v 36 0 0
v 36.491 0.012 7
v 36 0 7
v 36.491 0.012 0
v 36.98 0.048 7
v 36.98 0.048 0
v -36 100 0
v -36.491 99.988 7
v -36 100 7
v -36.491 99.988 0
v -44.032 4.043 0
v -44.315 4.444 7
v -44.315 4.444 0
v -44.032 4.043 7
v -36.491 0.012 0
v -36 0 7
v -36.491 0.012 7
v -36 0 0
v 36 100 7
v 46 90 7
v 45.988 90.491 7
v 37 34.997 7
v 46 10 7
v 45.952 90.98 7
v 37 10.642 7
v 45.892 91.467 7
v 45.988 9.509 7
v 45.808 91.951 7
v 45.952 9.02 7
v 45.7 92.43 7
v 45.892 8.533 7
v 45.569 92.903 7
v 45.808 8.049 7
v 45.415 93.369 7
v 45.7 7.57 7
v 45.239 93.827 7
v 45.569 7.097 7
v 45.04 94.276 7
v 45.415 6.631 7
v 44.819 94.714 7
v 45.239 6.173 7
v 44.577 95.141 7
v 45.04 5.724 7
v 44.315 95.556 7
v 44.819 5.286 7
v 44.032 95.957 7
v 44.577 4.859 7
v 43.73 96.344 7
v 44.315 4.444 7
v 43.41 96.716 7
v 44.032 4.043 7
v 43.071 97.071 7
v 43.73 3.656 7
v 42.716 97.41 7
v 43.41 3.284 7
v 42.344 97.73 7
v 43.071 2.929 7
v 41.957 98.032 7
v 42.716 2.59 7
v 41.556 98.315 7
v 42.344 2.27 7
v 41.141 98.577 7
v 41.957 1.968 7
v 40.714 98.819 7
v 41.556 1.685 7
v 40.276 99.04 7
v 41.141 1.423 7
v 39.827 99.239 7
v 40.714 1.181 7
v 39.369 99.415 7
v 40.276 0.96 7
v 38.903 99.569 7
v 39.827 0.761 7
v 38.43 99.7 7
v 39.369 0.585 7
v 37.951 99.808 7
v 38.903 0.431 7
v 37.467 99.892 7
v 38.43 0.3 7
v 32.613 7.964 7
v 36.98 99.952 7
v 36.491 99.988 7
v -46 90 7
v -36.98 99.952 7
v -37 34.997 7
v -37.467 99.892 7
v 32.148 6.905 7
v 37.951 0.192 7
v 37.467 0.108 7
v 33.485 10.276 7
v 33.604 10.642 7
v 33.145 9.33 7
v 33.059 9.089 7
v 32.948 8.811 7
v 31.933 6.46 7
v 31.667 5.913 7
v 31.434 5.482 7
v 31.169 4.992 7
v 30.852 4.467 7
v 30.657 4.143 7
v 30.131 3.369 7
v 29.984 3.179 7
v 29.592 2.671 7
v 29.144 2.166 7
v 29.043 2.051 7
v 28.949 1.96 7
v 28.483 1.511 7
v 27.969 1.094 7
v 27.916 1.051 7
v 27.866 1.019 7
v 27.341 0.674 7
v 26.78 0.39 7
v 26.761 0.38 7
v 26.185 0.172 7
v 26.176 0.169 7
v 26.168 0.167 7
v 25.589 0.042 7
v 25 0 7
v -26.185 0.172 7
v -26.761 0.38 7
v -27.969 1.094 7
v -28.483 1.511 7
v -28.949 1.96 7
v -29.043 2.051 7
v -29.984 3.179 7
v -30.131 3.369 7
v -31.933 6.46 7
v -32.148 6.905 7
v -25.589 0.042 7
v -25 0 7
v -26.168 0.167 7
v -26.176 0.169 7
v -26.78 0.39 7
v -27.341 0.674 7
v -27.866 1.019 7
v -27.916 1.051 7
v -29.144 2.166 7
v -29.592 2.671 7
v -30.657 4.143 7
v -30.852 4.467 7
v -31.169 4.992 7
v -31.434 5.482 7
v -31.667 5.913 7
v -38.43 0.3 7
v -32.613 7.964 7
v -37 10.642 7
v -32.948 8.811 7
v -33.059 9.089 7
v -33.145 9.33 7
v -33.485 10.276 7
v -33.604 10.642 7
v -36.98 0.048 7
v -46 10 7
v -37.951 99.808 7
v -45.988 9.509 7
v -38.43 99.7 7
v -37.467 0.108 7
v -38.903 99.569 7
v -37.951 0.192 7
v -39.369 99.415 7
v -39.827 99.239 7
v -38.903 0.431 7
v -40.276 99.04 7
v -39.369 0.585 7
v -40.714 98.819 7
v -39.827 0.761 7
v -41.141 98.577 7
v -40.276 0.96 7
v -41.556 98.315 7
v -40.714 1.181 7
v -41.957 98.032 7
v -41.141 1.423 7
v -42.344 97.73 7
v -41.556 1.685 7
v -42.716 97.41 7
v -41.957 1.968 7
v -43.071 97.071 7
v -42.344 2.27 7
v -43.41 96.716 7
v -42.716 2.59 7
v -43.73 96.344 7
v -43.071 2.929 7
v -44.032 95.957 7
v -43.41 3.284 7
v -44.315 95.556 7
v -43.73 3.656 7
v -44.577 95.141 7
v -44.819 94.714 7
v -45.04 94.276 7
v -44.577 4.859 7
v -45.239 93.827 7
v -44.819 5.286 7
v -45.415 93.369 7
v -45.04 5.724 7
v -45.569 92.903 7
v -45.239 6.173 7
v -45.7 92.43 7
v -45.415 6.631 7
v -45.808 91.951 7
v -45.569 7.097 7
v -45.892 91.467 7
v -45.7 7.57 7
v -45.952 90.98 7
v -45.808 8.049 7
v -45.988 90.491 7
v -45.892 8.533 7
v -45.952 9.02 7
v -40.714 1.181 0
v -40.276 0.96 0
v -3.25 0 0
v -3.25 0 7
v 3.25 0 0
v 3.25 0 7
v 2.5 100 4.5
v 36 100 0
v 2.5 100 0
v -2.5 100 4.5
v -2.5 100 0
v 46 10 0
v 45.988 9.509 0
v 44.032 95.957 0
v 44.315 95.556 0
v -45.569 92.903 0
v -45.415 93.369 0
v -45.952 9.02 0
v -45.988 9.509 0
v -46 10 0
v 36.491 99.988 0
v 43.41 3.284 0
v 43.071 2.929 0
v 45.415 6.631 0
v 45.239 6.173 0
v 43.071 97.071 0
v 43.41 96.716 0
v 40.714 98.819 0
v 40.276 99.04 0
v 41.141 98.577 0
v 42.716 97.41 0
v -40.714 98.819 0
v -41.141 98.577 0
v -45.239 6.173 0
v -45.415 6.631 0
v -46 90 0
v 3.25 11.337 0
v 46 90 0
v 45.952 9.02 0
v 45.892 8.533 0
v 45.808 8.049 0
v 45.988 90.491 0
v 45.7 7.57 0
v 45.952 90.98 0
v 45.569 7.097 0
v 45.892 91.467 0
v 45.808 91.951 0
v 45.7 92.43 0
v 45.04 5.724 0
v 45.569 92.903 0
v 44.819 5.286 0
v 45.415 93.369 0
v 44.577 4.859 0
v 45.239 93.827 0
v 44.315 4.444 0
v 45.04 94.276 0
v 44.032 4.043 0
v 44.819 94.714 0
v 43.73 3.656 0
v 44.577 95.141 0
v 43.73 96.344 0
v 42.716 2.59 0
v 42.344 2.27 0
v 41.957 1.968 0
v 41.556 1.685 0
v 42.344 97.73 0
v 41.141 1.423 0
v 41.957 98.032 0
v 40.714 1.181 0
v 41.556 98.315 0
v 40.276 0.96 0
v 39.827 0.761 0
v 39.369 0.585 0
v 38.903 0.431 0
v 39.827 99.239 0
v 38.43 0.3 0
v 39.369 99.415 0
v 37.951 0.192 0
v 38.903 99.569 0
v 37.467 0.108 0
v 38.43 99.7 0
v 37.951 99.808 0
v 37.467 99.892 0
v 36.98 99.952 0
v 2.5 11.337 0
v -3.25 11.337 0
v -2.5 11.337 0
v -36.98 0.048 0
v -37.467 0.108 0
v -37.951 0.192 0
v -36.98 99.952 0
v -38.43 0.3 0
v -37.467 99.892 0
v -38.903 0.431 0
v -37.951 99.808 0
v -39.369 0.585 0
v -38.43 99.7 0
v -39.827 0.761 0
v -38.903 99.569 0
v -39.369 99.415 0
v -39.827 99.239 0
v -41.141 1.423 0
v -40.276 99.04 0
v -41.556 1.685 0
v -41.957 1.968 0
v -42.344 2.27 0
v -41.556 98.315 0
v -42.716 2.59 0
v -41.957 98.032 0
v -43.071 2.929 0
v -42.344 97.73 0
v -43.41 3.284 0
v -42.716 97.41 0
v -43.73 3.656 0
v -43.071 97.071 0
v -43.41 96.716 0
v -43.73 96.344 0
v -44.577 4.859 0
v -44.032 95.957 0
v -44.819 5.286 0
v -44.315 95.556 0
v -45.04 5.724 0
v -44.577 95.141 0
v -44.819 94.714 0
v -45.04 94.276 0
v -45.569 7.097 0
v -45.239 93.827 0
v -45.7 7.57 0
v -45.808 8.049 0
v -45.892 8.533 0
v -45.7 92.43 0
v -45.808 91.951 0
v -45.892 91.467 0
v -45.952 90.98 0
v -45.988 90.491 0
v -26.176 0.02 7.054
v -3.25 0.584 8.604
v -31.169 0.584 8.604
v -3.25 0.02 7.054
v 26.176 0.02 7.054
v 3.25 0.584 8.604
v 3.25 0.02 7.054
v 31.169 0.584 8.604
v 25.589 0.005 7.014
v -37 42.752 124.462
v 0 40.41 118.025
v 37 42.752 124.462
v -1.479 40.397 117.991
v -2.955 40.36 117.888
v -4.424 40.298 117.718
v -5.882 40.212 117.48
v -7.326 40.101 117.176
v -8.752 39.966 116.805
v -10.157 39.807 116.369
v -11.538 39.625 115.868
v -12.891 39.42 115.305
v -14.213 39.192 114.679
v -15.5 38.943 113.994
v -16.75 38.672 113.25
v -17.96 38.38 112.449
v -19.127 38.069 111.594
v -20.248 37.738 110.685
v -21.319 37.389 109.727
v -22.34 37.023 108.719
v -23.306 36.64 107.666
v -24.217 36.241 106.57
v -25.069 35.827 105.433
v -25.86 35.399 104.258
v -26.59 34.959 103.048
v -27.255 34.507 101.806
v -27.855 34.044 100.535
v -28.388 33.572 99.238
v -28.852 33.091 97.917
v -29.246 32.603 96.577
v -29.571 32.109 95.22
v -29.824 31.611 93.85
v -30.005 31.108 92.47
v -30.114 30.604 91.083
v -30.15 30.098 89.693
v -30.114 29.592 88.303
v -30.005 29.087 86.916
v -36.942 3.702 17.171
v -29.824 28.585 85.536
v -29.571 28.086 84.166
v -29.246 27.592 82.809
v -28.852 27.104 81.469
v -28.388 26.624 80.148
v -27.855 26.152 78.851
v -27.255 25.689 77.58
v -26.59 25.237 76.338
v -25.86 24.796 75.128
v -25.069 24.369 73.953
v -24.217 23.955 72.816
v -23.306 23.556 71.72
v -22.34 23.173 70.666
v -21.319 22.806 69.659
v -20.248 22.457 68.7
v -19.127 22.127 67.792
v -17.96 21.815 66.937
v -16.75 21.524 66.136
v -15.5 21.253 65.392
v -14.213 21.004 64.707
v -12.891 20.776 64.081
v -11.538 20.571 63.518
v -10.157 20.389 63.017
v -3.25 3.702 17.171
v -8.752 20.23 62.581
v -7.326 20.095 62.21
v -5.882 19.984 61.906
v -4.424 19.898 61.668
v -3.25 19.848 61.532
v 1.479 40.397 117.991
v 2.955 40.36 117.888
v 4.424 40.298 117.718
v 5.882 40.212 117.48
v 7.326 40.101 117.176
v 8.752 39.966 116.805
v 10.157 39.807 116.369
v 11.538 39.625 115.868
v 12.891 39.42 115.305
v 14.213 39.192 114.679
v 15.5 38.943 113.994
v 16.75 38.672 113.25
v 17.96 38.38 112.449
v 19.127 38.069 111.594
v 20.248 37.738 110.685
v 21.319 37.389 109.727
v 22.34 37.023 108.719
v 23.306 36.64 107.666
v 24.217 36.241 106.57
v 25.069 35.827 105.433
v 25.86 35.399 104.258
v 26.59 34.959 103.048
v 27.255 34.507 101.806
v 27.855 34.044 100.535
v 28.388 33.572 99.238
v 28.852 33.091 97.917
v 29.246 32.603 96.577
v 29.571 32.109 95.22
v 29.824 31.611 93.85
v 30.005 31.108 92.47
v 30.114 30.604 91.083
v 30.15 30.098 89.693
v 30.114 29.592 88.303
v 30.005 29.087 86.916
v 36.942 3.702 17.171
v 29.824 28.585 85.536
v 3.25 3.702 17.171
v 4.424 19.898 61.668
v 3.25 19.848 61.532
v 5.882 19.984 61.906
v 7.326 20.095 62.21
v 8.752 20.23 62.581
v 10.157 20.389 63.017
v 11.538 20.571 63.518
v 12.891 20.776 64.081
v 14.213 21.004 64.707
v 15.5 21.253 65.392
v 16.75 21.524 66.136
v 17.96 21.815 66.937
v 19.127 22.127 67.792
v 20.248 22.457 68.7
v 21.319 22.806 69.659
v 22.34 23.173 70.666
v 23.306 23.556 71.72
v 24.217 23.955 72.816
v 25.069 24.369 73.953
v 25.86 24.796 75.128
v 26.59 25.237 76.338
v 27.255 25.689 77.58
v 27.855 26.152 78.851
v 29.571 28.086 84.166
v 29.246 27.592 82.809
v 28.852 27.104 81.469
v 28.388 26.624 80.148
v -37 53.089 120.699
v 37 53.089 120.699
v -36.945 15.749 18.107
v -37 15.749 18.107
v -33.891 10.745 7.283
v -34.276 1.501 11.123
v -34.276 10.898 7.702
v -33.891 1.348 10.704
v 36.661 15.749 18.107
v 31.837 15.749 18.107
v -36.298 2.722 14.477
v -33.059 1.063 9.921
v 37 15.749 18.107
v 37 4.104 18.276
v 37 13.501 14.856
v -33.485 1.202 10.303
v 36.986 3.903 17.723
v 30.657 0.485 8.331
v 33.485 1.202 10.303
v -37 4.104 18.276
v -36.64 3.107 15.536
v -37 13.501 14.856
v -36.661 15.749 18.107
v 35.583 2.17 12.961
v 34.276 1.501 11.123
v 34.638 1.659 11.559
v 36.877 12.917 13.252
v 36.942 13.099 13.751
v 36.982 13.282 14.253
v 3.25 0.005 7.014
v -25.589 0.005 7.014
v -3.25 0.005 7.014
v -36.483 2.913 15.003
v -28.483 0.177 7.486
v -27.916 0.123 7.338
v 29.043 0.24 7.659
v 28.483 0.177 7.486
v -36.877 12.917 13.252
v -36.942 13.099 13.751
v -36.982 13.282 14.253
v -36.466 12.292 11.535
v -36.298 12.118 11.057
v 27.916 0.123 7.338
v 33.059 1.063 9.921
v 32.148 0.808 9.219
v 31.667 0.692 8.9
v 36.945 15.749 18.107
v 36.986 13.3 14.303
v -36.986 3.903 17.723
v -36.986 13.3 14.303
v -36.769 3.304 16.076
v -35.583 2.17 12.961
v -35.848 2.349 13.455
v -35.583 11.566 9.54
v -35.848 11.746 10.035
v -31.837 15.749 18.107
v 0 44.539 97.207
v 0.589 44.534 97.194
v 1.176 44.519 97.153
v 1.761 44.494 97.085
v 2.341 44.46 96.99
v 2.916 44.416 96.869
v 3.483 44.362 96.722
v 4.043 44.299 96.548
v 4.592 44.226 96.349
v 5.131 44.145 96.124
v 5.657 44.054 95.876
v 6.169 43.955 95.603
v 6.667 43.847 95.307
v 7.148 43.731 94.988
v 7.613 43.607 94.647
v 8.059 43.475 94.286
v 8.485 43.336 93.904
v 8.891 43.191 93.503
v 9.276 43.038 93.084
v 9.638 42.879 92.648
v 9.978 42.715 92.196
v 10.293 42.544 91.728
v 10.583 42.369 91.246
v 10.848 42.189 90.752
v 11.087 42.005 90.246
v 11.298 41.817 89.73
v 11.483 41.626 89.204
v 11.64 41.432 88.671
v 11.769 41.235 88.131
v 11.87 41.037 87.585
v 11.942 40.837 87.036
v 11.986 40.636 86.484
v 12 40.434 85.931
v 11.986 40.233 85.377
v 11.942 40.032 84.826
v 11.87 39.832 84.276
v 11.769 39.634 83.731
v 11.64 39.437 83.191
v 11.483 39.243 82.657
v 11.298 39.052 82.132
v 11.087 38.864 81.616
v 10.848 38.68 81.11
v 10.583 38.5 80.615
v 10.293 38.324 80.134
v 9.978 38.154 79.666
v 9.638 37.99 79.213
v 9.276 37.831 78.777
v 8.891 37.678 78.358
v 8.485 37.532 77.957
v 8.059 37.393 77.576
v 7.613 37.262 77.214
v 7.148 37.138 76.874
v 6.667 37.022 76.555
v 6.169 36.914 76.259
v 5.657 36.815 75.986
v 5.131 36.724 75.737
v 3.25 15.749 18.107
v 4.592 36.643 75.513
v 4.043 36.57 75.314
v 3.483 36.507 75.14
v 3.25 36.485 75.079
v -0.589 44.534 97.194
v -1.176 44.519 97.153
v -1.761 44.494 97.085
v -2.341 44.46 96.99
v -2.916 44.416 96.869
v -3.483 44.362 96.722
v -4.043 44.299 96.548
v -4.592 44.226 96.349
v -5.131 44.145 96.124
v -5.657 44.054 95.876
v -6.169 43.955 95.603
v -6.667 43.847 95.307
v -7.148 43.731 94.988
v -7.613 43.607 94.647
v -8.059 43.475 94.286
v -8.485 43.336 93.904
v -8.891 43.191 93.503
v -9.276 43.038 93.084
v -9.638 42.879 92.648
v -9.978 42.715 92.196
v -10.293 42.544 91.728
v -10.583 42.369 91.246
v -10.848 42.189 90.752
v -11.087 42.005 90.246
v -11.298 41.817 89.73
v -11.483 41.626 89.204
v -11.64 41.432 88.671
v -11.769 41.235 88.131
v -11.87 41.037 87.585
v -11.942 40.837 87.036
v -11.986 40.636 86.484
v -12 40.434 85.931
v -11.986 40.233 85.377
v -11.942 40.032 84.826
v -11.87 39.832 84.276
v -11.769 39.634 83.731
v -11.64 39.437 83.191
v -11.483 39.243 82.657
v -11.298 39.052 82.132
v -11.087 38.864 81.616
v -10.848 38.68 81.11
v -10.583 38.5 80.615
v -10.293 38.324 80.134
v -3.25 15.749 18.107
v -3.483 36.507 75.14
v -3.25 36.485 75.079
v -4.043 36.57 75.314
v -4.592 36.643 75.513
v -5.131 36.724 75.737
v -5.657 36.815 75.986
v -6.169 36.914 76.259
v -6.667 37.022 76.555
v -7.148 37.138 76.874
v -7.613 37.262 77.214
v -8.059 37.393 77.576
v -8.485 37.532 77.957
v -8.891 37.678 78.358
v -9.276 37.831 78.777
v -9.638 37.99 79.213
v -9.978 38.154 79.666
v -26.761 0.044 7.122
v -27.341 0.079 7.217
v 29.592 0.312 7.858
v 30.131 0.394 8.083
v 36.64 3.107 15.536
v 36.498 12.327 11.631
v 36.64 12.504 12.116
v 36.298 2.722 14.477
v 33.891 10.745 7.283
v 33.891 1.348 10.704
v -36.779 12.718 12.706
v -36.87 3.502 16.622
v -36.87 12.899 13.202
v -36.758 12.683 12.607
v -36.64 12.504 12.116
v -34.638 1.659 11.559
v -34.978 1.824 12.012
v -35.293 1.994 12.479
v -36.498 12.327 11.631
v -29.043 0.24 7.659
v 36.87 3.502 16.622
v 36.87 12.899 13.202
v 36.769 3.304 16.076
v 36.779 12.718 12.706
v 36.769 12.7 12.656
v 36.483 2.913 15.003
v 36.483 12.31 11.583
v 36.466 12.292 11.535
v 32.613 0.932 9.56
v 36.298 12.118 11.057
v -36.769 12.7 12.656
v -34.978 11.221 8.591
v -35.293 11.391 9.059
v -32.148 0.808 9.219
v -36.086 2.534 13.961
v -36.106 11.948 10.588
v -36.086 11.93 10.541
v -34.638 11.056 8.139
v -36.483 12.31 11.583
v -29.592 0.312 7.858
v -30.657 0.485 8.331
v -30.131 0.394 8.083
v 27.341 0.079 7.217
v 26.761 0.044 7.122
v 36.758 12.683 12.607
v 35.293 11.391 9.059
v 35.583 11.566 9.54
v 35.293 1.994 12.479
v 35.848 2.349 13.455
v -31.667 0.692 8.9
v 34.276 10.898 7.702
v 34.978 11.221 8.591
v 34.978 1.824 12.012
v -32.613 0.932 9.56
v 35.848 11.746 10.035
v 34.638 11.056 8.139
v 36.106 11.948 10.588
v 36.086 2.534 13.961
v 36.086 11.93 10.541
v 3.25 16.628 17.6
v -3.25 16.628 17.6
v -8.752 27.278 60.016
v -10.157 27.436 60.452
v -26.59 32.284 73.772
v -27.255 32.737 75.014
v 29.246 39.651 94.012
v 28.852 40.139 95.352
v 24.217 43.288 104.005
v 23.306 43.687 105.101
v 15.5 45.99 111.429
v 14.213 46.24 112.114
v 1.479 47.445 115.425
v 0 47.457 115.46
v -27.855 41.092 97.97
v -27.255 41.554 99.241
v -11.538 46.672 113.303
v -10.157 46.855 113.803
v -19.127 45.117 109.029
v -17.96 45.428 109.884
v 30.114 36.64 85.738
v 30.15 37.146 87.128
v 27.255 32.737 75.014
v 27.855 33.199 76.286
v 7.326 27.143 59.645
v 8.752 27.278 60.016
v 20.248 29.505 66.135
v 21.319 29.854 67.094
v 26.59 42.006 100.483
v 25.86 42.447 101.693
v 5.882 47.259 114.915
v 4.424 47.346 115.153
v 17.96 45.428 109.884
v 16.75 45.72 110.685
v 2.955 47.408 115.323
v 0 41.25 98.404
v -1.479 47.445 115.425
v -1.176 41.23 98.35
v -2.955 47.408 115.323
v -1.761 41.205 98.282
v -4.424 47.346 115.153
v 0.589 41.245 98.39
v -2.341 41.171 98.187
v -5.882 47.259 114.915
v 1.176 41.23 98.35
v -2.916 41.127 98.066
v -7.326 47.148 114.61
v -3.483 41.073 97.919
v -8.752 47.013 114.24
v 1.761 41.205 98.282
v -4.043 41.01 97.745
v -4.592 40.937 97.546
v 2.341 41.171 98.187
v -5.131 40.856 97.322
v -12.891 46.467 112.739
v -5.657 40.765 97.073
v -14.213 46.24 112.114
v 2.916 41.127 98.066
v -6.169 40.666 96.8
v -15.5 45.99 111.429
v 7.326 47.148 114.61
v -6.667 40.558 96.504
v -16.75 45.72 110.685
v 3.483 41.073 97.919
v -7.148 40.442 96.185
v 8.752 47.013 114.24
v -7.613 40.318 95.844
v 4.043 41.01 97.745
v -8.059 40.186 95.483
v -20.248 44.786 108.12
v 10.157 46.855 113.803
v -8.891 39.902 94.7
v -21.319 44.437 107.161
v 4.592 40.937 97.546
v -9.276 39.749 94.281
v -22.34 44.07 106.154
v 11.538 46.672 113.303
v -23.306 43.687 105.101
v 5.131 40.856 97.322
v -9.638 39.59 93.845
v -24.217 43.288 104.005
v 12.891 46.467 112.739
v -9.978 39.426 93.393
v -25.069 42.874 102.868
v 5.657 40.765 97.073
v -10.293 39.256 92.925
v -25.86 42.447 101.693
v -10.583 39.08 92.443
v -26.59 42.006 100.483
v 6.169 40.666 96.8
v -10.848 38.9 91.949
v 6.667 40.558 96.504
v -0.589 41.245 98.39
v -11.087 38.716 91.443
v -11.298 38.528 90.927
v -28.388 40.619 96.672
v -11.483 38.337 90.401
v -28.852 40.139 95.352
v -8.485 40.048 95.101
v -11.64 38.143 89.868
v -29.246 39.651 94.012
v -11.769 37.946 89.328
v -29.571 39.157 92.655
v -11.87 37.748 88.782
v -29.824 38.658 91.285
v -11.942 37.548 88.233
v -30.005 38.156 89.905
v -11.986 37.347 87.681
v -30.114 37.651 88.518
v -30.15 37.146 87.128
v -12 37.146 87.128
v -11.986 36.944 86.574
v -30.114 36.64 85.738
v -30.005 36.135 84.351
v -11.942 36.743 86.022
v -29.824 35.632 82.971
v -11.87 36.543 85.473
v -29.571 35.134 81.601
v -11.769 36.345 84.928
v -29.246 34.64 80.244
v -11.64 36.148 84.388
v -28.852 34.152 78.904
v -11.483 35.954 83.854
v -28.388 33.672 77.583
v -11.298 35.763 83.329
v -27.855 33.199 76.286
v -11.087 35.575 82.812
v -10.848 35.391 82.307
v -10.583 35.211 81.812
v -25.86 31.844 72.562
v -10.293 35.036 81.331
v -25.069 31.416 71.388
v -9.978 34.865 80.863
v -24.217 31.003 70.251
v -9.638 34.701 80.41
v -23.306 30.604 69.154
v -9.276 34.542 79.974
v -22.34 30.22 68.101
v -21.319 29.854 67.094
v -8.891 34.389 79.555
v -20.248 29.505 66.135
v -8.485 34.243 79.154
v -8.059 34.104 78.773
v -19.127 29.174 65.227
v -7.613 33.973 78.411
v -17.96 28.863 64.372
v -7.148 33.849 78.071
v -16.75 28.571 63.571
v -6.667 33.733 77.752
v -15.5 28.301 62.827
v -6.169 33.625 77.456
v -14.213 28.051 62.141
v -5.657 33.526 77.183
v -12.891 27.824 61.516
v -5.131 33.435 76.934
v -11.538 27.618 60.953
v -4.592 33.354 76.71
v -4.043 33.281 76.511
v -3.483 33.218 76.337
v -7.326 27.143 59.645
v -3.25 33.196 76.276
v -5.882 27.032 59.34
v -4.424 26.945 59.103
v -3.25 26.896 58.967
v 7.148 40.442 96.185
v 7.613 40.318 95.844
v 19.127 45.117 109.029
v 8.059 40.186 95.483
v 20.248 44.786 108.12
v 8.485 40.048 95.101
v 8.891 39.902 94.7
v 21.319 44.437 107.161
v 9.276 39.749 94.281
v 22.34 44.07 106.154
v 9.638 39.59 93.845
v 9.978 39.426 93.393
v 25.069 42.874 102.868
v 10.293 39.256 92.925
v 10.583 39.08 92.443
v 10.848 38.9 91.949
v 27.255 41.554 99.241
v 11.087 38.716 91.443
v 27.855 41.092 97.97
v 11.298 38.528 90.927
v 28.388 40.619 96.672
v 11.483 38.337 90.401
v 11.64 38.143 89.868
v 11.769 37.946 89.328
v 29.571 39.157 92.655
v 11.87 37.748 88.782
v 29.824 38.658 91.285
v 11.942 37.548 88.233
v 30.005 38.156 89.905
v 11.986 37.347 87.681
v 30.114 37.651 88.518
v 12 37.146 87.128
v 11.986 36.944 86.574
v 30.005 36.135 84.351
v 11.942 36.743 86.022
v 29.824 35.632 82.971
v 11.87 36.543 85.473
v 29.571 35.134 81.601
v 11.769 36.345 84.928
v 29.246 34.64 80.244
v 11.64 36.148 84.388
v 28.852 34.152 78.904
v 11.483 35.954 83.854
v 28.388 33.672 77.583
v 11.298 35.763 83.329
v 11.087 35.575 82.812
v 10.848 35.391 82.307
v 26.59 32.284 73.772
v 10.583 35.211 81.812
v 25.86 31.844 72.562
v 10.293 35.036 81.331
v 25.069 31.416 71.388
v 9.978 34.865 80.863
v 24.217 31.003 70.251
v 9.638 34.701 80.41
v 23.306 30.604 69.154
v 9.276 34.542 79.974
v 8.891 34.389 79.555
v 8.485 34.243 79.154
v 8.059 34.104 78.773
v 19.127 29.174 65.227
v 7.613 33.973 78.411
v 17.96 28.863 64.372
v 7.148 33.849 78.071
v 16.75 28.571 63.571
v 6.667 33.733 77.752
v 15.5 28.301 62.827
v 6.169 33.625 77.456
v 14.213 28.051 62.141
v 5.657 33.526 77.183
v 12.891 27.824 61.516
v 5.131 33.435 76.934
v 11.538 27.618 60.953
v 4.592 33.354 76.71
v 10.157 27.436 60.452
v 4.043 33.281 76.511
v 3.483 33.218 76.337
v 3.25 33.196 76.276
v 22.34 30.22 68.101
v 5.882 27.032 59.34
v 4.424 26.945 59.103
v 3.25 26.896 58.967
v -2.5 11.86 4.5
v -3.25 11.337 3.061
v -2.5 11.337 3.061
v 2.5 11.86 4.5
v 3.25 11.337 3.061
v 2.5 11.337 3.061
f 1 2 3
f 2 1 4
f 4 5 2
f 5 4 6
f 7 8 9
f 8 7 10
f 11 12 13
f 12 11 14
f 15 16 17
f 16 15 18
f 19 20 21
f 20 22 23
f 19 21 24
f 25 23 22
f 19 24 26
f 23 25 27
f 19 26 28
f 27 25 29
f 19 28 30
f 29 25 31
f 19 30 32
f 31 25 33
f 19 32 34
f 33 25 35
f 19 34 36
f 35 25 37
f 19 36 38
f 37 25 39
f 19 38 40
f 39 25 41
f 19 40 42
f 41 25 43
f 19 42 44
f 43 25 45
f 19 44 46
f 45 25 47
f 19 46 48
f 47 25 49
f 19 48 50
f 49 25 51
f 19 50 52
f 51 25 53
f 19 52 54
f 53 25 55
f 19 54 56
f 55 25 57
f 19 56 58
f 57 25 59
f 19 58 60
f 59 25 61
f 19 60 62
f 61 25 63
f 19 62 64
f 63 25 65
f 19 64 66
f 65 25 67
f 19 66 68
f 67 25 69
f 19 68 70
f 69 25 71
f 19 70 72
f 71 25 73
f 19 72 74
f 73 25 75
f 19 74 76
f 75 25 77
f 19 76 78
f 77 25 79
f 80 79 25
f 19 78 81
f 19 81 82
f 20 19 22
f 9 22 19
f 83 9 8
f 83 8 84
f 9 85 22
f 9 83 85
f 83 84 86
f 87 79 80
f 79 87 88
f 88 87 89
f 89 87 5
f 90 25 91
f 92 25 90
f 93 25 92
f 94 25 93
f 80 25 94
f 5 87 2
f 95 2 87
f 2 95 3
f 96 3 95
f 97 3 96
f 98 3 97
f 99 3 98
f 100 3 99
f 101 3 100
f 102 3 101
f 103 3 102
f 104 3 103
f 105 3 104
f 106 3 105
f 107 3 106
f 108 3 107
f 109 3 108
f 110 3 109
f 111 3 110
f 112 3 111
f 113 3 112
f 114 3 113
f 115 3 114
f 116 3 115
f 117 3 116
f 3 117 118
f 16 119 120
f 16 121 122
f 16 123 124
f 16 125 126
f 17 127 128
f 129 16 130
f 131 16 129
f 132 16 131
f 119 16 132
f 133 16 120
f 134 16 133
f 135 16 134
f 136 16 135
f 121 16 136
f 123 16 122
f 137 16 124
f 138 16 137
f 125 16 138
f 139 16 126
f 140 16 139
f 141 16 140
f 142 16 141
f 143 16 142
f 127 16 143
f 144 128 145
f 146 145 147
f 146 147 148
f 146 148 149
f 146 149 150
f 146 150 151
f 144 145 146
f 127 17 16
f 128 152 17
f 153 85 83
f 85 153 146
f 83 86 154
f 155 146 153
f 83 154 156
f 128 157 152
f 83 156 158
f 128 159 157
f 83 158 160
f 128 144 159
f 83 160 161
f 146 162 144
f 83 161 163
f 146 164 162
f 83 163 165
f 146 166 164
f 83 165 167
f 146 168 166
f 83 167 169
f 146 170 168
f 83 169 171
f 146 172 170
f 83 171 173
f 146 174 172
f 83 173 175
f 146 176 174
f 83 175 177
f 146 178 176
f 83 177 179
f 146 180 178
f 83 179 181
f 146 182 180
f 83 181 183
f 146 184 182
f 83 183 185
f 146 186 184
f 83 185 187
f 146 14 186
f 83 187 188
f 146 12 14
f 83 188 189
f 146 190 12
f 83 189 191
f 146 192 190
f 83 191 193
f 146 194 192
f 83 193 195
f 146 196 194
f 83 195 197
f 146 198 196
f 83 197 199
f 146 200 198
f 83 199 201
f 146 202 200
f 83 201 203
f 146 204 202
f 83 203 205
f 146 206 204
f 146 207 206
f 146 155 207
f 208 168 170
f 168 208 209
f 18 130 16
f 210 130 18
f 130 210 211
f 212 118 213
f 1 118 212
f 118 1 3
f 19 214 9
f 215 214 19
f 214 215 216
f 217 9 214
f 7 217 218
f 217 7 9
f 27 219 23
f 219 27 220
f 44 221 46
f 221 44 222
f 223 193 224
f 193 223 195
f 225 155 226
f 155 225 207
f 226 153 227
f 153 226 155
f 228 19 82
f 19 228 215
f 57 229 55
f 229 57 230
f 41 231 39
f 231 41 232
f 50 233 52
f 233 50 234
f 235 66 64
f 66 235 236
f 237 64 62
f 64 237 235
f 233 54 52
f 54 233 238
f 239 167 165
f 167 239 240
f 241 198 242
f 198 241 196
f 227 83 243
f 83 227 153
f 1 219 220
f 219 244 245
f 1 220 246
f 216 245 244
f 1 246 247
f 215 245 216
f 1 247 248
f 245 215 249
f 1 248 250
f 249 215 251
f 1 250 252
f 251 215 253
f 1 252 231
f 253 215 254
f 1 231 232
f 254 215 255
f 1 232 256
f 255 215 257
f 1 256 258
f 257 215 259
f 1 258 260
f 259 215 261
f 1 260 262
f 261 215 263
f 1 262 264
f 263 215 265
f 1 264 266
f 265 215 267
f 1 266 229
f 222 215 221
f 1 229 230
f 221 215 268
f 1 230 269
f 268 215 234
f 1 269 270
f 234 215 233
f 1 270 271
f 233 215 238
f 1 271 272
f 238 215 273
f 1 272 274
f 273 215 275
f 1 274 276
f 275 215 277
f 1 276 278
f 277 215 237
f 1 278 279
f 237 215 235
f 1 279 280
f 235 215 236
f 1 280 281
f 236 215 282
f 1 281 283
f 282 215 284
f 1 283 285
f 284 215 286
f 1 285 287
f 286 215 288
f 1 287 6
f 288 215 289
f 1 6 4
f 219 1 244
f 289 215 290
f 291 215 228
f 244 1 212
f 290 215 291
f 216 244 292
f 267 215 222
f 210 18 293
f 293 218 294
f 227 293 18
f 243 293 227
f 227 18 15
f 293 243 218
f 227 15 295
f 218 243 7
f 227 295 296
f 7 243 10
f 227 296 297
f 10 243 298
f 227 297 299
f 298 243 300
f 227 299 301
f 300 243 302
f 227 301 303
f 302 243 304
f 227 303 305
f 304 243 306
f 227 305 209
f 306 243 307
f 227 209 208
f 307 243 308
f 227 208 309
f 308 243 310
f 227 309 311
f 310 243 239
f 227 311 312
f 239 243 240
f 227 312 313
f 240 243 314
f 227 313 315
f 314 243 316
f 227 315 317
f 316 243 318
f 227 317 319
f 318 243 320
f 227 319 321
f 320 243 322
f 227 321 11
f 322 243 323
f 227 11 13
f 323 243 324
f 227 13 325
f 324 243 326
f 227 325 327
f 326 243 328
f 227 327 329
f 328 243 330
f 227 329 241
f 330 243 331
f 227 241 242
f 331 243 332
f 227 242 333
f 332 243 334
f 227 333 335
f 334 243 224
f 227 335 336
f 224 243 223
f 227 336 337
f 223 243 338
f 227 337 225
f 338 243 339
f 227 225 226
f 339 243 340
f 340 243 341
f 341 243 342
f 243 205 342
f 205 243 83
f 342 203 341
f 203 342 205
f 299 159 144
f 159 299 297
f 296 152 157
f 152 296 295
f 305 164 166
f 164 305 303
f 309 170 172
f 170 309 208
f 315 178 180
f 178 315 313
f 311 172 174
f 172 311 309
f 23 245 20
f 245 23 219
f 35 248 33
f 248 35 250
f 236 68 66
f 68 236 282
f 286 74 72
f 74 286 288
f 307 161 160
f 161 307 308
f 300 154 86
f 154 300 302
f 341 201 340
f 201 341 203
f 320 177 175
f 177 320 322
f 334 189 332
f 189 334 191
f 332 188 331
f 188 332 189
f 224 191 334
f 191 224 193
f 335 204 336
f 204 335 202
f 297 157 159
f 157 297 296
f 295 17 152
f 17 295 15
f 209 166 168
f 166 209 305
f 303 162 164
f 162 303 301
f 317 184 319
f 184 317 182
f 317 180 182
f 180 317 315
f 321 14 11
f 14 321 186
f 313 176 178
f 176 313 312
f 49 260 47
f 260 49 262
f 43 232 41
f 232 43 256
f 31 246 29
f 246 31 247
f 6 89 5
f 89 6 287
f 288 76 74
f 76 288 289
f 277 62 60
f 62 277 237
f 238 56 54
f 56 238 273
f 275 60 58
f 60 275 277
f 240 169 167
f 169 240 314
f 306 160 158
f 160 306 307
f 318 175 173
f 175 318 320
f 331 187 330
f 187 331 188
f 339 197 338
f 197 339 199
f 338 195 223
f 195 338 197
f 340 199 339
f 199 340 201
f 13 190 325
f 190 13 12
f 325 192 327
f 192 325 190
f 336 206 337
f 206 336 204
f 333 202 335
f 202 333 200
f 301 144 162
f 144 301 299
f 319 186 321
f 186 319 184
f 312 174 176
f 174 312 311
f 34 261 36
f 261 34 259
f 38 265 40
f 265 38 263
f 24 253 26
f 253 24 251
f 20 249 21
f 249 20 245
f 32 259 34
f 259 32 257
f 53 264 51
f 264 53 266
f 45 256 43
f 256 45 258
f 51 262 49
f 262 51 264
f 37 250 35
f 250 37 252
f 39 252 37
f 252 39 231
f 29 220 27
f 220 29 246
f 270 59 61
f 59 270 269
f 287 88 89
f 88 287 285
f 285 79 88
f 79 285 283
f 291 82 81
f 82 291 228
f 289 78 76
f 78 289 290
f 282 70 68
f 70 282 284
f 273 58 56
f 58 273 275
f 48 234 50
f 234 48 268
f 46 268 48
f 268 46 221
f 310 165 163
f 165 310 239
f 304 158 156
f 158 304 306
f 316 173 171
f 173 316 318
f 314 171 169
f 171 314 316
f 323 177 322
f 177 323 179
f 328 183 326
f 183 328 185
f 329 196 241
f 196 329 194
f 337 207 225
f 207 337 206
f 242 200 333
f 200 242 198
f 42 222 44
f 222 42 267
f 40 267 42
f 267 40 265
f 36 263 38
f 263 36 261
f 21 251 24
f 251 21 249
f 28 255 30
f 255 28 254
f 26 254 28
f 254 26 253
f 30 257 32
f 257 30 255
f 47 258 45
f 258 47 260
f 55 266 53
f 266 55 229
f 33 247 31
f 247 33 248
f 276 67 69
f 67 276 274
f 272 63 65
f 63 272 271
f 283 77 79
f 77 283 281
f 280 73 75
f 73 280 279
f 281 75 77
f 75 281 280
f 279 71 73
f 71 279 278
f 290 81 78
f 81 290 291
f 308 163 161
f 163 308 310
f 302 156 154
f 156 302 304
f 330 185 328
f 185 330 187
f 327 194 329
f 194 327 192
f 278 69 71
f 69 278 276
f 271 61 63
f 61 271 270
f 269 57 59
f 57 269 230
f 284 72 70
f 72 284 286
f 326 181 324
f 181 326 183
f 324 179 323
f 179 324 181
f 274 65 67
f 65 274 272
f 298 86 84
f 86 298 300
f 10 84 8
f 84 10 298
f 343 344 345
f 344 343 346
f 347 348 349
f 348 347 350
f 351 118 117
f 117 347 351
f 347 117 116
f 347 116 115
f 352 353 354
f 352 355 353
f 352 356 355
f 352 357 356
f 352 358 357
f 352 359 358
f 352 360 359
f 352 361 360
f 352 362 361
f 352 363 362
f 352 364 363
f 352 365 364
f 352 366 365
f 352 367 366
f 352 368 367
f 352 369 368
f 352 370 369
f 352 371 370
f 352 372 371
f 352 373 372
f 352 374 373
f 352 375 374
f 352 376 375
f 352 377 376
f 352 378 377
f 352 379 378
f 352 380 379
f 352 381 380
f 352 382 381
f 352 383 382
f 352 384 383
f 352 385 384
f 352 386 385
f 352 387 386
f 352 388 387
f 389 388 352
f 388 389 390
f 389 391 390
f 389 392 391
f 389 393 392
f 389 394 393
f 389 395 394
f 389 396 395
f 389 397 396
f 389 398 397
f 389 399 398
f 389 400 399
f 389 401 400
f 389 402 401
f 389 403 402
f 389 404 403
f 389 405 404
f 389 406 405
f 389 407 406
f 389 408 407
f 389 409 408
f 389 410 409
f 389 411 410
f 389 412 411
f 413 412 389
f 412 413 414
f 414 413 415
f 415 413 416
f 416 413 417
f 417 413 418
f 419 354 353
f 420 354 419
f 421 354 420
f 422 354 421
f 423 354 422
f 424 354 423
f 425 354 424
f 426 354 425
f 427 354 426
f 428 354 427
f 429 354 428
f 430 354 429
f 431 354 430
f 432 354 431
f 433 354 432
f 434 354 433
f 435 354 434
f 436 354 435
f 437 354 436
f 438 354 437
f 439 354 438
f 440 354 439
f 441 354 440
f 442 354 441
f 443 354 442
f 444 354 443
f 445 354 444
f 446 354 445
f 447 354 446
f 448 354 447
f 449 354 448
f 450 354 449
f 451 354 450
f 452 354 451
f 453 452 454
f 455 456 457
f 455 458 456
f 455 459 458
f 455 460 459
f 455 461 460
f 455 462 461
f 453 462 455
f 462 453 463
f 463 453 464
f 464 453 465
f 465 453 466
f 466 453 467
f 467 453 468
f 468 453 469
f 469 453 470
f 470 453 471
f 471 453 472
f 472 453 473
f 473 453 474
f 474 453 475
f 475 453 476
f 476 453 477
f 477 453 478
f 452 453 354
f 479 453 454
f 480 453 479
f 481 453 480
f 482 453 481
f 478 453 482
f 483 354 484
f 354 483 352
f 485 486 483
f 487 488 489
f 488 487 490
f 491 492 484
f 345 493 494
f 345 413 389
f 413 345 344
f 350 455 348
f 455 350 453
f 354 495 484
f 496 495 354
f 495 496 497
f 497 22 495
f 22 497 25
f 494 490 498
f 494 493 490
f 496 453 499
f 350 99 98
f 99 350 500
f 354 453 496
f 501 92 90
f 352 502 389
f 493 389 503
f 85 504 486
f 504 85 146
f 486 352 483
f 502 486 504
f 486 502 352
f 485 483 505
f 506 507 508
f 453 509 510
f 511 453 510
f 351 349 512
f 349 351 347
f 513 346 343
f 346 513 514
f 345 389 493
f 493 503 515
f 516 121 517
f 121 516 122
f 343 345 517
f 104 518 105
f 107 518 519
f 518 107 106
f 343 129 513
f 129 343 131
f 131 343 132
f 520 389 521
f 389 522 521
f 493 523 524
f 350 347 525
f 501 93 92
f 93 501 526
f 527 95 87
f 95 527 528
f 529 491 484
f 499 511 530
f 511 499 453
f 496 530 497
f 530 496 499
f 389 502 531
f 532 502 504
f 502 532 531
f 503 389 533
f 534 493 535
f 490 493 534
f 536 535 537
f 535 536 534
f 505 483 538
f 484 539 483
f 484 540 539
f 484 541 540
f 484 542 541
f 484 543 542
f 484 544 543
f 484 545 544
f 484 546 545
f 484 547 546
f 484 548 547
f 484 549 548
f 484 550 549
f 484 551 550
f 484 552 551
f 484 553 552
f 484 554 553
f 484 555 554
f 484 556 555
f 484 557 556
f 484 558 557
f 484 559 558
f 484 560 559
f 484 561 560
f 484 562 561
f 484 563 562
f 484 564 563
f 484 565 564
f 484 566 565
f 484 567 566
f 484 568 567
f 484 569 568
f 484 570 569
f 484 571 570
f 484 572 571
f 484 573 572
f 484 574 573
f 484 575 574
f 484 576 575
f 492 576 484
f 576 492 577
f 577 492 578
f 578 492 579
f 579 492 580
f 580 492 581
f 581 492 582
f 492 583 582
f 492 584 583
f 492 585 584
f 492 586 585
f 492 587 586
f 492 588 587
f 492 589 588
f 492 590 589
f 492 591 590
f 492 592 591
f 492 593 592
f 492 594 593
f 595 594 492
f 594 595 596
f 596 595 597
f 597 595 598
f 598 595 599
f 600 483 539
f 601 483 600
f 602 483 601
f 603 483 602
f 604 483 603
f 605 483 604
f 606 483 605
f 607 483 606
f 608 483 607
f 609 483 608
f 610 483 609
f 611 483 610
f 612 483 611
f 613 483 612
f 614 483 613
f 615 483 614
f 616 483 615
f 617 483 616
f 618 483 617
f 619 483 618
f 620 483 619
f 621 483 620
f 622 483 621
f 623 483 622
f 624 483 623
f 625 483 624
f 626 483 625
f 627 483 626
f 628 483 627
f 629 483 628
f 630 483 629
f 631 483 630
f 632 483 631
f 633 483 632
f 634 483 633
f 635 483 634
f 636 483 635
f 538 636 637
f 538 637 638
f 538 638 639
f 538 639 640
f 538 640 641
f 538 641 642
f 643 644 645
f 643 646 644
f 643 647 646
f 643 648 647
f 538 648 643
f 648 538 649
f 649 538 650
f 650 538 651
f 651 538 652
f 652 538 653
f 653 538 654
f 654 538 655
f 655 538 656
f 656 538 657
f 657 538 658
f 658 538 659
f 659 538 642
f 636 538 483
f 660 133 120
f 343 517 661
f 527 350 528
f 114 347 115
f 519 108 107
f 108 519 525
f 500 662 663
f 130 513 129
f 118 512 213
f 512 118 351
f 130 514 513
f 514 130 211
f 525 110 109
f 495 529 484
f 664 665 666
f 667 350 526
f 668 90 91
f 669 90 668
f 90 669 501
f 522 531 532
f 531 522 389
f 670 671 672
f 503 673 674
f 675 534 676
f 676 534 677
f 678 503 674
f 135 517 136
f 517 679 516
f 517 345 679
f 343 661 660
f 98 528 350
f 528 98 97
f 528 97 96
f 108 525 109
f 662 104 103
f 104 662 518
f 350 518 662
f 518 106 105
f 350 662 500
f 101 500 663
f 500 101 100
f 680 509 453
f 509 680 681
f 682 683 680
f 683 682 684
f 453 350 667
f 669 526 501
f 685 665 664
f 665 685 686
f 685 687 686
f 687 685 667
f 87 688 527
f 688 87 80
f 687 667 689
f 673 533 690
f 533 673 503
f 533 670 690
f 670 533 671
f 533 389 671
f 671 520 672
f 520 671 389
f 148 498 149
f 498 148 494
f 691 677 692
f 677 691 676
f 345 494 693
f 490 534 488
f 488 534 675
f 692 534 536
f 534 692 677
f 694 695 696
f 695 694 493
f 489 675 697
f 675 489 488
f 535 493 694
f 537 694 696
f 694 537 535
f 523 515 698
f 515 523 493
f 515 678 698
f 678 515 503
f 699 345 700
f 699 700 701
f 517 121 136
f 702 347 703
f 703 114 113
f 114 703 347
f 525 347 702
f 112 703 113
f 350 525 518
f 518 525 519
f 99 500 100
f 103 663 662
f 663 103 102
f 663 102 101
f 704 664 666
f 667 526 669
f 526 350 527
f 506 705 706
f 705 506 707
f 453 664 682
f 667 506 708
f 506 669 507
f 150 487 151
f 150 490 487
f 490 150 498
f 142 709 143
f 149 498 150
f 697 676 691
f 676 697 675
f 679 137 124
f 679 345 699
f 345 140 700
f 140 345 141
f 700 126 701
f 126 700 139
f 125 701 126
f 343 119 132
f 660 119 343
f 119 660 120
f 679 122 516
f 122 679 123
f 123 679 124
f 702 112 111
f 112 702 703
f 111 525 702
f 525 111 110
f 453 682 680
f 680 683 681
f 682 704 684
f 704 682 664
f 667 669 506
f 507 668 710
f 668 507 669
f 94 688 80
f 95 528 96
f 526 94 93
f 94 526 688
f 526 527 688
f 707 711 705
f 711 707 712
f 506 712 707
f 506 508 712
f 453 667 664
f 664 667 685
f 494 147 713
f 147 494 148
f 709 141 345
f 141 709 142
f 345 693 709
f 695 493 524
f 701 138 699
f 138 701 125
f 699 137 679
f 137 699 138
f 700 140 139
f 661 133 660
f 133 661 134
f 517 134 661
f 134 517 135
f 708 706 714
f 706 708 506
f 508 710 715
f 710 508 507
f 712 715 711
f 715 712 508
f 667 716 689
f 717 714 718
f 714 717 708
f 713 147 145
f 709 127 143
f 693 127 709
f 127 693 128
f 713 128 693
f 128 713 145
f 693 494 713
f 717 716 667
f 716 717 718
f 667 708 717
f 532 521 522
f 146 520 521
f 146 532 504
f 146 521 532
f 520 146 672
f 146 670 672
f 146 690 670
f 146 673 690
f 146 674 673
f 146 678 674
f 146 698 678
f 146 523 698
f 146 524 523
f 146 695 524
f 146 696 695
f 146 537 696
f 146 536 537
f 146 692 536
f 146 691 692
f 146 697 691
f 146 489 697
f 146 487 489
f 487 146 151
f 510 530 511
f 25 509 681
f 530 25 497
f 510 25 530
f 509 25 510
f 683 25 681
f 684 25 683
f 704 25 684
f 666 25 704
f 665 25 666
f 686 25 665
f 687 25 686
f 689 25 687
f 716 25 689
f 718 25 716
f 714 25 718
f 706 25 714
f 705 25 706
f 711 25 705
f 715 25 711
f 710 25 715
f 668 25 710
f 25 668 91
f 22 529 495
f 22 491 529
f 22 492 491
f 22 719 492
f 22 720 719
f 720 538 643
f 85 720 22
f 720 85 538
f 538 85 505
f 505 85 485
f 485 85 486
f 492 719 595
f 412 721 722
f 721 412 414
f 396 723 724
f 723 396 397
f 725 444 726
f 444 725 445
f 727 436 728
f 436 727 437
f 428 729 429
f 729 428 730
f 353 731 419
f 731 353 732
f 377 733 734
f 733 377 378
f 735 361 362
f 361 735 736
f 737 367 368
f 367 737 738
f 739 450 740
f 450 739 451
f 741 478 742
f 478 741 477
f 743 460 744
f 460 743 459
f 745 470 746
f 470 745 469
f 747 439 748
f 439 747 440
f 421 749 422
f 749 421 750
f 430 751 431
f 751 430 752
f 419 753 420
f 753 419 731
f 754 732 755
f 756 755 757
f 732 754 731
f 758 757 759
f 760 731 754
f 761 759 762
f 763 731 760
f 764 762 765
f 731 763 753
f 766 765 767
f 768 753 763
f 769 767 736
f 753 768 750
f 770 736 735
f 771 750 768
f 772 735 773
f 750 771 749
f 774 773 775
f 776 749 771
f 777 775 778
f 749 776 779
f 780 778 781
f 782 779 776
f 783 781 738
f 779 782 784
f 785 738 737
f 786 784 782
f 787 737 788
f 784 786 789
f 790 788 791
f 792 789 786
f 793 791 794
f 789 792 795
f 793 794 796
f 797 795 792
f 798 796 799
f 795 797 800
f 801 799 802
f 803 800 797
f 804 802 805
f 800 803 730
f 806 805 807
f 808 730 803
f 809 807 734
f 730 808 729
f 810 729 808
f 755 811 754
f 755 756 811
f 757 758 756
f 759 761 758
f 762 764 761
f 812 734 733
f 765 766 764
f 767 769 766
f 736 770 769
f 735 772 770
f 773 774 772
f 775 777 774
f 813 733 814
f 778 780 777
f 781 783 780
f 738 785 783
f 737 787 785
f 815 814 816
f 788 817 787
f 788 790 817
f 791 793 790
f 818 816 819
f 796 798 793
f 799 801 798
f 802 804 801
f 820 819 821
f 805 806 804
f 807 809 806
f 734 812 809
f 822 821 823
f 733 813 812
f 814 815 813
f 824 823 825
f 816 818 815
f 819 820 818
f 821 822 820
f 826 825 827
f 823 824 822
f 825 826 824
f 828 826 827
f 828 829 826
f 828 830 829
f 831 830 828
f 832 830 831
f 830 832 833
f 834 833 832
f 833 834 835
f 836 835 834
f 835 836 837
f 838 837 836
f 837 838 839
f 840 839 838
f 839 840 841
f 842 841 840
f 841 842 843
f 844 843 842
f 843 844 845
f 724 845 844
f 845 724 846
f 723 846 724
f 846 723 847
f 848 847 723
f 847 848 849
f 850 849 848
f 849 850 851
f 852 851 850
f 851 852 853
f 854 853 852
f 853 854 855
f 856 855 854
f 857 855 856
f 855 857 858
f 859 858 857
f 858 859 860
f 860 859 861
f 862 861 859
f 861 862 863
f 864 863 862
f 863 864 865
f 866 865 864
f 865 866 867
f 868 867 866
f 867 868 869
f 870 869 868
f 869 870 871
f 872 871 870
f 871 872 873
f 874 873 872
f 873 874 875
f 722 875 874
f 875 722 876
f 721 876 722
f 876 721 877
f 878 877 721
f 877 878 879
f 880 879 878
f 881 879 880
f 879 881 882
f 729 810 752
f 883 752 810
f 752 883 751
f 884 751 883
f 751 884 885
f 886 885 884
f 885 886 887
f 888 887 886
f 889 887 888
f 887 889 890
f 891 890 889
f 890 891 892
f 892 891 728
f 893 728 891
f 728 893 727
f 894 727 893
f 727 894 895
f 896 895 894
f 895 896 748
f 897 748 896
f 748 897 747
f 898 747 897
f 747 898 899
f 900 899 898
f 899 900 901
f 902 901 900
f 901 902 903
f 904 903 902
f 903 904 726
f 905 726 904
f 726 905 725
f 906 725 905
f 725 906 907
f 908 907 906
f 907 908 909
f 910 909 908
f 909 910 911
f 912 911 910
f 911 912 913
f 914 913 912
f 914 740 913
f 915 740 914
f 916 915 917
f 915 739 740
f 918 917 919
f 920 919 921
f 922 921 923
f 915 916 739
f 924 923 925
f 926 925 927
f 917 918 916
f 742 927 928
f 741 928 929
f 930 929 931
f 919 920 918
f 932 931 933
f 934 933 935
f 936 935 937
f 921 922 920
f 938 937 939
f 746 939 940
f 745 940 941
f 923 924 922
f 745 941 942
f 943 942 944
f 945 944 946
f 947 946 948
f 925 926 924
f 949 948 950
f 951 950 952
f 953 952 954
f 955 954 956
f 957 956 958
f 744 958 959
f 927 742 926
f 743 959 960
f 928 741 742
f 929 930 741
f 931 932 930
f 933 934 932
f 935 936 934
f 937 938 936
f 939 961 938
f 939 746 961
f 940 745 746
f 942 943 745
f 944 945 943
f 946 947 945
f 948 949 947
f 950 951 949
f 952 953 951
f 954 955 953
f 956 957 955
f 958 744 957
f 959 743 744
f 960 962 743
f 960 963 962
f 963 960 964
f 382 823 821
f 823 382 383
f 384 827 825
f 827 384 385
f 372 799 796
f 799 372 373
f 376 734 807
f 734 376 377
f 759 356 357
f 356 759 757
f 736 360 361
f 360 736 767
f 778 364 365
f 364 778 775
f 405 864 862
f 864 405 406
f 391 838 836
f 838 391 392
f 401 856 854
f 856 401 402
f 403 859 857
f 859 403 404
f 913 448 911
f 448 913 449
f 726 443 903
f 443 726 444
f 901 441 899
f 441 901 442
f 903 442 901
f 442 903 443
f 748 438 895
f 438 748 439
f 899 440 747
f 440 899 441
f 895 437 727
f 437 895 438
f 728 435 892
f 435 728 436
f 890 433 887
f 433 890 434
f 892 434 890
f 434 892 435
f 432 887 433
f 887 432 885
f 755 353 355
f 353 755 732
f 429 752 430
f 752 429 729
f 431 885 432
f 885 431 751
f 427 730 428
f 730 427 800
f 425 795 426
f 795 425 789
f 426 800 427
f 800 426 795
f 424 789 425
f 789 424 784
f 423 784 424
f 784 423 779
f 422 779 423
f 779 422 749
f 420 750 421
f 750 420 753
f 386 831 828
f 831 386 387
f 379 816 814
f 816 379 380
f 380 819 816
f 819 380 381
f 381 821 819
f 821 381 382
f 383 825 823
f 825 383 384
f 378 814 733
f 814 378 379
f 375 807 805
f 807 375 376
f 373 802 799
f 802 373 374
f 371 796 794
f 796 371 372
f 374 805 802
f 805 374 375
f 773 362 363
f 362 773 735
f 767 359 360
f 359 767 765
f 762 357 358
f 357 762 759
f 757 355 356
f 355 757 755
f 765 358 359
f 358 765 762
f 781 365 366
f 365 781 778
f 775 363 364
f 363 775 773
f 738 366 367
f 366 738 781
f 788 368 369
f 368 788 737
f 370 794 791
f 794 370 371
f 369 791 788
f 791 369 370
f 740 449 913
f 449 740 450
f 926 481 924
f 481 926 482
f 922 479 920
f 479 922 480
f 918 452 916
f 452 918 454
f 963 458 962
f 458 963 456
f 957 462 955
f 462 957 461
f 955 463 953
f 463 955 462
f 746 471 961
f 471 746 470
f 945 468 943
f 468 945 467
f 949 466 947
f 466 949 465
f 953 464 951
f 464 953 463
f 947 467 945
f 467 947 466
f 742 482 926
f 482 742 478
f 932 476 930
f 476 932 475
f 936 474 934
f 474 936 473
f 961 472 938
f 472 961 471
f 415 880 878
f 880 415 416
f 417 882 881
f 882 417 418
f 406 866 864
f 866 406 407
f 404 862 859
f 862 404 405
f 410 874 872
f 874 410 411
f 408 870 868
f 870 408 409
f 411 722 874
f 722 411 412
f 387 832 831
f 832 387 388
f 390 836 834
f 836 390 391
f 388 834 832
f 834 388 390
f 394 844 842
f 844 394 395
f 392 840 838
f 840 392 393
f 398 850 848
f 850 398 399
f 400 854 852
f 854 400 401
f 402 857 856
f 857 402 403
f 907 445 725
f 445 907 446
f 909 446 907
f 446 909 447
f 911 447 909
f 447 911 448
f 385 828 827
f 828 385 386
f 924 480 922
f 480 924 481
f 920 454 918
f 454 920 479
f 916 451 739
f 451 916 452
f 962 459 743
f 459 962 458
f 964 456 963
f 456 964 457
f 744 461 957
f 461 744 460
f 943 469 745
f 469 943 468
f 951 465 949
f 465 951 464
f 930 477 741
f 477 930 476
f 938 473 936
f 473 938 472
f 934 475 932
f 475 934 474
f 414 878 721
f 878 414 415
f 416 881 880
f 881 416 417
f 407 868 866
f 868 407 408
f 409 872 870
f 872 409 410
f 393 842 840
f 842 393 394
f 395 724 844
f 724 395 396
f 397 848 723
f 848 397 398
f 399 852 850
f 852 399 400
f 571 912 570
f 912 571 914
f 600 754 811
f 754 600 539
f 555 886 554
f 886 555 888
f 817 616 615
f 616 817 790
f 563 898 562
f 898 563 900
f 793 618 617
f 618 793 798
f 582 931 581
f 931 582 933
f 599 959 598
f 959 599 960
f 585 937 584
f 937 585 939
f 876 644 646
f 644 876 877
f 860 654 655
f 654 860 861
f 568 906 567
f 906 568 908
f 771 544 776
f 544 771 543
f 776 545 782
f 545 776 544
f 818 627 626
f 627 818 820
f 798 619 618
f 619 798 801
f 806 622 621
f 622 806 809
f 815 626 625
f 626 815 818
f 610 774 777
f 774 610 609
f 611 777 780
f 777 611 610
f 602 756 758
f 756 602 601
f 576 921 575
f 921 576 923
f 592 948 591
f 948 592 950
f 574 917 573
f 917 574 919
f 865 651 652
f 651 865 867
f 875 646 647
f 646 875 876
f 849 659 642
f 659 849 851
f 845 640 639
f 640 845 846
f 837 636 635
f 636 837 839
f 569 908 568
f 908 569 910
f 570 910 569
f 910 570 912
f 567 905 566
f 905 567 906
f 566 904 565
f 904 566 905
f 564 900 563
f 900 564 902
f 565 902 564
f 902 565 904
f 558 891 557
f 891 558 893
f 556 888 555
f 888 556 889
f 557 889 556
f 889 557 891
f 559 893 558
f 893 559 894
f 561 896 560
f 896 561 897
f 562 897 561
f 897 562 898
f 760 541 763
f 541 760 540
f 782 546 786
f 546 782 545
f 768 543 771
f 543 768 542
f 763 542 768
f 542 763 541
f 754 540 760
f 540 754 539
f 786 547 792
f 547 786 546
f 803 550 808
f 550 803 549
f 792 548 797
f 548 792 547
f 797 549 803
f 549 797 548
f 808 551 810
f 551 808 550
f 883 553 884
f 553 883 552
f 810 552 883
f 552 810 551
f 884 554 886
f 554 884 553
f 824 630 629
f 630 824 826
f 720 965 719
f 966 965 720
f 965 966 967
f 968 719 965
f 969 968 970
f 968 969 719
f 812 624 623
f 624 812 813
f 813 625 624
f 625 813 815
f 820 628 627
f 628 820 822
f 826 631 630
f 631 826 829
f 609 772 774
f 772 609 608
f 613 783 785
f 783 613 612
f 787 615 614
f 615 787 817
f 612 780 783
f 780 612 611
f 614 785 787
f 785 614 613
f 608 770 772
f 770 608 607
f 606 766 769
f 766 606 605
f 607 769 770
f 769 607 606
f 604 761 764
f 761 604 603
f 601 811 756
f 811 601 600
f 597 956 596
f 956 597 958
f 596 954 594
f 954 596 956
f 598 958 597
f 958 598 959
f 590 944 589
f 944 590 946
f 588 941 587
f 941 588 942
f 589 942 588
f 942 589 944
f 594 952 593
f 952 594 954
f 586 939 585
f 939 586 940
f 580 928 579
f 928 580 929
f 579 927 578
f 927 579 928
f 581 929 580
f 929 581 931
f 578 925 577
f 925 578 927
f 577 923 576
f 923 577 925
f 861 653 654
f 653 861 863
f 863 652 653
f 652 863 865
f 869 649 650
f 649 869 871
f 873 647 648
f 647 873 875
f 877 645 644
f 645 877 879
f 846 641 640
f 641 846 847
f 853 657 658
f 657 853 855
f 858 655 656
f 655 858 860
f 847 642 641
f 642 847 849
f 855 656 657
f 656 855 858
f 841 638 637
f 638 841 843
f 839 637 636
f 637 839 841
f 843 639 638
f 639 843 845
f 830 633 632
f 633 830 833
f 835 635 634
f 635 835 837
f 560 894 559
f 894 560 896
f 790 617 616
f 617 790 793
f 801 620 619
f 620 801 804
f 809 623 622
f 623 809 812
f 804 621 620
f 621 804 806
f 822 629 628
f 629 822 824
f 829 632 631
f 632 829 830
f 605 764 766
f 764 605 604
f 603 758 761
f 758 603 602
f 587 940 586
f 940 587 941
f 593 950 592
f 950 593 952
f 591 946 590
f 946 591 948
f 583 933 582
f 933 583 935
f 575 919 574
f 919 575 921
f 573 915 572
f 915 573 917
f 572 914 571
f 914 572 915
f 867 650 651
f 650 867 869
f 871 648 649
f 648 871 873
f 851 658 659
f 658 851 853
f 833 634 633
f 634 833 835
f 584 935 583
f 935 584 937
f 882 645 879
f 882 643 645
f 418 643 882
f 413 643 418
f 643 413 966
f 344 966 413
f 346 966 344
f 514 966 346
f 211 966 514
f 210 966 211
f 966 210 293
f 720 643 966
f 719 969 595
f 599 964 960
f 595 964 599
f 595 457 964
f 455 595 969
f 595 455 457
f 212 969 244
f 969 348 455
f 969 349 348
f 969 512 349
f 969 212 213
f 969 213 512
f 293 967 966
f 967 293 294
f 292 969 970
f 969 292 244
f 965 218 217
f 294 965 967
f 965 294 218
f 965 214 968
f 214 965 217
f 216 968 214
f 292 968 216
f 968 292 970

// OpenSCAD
// MagSafe / Qi2 phone stand for the Amazon Basics 25W Qi2.2 charging pad (LACC175).
// Based on the idea of "Apple iPhone MagSafe Stand" (printables.com/model/44465):
// an angled plate holding the charger puck in a pocket, with a push-out hole.
//
// Print flat on its base, no supports: PLA/PETG, 0.2 mm layers, 3 walls, 20% infill.
// Open in OpenSCAD (Customizer works too), then F6 + Export STL.

/* [Charger puck] */
// Measure your puck with calipers; listings say 59.9-60.0 mm.
puck_d = 60.0;
puck_h = 8.1;
// Diametral clearance. Go down to 0.1 for a press fit.
fit = 0.3;
// How far the puck face stands above the plate.
proud = 0.6;

/* [Stand] */
// Plate tilt from horizontal (deg).
angle = 70;
plate_w = 74;
// Plate length along the slope.
plate_l = 125;
plate_t = 11;
plate_r = 12;
// Puck centre along the slope, from the base top. Keep > half the phone height.
puck_c = 88;

base_w = 92;
base_d = 100;
base_h = 7;
base_r = 10;

/* [Cable] */
// Through hole for pushing the puck out or passing a cable that exits the back.
push_d = 24;
// Slot through the plate for a cable that exits the puck's edge.
slot_w = 6.5;
groove_w = 5.0;
groove_h = 4.5;
fillet = 16;

/* [Hidden] */
$fn = 128;
eps = 0.01;
pocket_d = puck_d + fit;
pocket_depth = puck_h - proud;
assert(plate_t - pocket_depth >= 2.5, "plate too thin behind the puck");

// Rear-bottom edge of the plate (y, z), and a point 1 mm inside it to avoid slivers.
back_y = plate_t * sin(angle);
fy = back_y - sin(angle);
fz = base_h - plate_t * cos(angle) + cos(angle);

module rounded_rect(w, h, r) {
    offset(r) square([w - 2 * r, h - 2 * r], center = true);
}

// Plate frame: x across, y up the slope, z out of the front face.
module in_plate() {
    translate([0, 0, base_h]) rotate([angle, 0, 0]) children();
}

module body() {
    translate([0, base_d / 2, 0])
        linear_extrude(base_h) rounded_rect(base_w, base_d, base_r);

    // Plate, rounded at the top only (its bottom is buried in the base).
    in_plate() translate([0, 0, -plate_t]) linear_extrude(plate_t)
        intersection() {
            translate([0, plate_l / 2 + plate_r]) rounded_rect(plate_w, plate_l + 2 * plate_r, plate_r);
            translate([-plate_w / 2, 0]) square([plate_w, plate_l]);
        }

    // Fillet between the plate back and the base top.
    rotate([90, 0, 90]) linear_extrude(plate_w, center = true)
        polygon([[fy, fz], [fy + fillet * 1.6, base_h],
                 [fy + fillet * cos(angle), fz + fillet * sin(angle)]]);
}

difference() {
    body();

    in_plate() {
        // Puck pocket.
        translate([0, puck_c, -pocket_depth]) cylinder(h = pocket_depth + 1, d = pocket_d);
        // Push-out hole.
        translate([0, puck_c, -plate_t - 1]) cylinder(h = plate_t + 2, d = push_d);
        // Cable slot from the hole down through the bottom of the plate.
        translate([-slot_w / 2, -20, -plate_t - 1]) cube([slot_w, puck_c + 20, plate_t + 2]);
    }

    // Slot continues down through the base under the plate...
    translate([-slot_w / 2, -1, -1]) cube([slot_w, back_y + 2, base_h + 1 + eps]);
    // ...and an open groove under the base leads the cable out the back.
    translate([-groove_w / 2, -1, -1]) cube([groove_w, base_d + 2, groove_h + 1]);
}
